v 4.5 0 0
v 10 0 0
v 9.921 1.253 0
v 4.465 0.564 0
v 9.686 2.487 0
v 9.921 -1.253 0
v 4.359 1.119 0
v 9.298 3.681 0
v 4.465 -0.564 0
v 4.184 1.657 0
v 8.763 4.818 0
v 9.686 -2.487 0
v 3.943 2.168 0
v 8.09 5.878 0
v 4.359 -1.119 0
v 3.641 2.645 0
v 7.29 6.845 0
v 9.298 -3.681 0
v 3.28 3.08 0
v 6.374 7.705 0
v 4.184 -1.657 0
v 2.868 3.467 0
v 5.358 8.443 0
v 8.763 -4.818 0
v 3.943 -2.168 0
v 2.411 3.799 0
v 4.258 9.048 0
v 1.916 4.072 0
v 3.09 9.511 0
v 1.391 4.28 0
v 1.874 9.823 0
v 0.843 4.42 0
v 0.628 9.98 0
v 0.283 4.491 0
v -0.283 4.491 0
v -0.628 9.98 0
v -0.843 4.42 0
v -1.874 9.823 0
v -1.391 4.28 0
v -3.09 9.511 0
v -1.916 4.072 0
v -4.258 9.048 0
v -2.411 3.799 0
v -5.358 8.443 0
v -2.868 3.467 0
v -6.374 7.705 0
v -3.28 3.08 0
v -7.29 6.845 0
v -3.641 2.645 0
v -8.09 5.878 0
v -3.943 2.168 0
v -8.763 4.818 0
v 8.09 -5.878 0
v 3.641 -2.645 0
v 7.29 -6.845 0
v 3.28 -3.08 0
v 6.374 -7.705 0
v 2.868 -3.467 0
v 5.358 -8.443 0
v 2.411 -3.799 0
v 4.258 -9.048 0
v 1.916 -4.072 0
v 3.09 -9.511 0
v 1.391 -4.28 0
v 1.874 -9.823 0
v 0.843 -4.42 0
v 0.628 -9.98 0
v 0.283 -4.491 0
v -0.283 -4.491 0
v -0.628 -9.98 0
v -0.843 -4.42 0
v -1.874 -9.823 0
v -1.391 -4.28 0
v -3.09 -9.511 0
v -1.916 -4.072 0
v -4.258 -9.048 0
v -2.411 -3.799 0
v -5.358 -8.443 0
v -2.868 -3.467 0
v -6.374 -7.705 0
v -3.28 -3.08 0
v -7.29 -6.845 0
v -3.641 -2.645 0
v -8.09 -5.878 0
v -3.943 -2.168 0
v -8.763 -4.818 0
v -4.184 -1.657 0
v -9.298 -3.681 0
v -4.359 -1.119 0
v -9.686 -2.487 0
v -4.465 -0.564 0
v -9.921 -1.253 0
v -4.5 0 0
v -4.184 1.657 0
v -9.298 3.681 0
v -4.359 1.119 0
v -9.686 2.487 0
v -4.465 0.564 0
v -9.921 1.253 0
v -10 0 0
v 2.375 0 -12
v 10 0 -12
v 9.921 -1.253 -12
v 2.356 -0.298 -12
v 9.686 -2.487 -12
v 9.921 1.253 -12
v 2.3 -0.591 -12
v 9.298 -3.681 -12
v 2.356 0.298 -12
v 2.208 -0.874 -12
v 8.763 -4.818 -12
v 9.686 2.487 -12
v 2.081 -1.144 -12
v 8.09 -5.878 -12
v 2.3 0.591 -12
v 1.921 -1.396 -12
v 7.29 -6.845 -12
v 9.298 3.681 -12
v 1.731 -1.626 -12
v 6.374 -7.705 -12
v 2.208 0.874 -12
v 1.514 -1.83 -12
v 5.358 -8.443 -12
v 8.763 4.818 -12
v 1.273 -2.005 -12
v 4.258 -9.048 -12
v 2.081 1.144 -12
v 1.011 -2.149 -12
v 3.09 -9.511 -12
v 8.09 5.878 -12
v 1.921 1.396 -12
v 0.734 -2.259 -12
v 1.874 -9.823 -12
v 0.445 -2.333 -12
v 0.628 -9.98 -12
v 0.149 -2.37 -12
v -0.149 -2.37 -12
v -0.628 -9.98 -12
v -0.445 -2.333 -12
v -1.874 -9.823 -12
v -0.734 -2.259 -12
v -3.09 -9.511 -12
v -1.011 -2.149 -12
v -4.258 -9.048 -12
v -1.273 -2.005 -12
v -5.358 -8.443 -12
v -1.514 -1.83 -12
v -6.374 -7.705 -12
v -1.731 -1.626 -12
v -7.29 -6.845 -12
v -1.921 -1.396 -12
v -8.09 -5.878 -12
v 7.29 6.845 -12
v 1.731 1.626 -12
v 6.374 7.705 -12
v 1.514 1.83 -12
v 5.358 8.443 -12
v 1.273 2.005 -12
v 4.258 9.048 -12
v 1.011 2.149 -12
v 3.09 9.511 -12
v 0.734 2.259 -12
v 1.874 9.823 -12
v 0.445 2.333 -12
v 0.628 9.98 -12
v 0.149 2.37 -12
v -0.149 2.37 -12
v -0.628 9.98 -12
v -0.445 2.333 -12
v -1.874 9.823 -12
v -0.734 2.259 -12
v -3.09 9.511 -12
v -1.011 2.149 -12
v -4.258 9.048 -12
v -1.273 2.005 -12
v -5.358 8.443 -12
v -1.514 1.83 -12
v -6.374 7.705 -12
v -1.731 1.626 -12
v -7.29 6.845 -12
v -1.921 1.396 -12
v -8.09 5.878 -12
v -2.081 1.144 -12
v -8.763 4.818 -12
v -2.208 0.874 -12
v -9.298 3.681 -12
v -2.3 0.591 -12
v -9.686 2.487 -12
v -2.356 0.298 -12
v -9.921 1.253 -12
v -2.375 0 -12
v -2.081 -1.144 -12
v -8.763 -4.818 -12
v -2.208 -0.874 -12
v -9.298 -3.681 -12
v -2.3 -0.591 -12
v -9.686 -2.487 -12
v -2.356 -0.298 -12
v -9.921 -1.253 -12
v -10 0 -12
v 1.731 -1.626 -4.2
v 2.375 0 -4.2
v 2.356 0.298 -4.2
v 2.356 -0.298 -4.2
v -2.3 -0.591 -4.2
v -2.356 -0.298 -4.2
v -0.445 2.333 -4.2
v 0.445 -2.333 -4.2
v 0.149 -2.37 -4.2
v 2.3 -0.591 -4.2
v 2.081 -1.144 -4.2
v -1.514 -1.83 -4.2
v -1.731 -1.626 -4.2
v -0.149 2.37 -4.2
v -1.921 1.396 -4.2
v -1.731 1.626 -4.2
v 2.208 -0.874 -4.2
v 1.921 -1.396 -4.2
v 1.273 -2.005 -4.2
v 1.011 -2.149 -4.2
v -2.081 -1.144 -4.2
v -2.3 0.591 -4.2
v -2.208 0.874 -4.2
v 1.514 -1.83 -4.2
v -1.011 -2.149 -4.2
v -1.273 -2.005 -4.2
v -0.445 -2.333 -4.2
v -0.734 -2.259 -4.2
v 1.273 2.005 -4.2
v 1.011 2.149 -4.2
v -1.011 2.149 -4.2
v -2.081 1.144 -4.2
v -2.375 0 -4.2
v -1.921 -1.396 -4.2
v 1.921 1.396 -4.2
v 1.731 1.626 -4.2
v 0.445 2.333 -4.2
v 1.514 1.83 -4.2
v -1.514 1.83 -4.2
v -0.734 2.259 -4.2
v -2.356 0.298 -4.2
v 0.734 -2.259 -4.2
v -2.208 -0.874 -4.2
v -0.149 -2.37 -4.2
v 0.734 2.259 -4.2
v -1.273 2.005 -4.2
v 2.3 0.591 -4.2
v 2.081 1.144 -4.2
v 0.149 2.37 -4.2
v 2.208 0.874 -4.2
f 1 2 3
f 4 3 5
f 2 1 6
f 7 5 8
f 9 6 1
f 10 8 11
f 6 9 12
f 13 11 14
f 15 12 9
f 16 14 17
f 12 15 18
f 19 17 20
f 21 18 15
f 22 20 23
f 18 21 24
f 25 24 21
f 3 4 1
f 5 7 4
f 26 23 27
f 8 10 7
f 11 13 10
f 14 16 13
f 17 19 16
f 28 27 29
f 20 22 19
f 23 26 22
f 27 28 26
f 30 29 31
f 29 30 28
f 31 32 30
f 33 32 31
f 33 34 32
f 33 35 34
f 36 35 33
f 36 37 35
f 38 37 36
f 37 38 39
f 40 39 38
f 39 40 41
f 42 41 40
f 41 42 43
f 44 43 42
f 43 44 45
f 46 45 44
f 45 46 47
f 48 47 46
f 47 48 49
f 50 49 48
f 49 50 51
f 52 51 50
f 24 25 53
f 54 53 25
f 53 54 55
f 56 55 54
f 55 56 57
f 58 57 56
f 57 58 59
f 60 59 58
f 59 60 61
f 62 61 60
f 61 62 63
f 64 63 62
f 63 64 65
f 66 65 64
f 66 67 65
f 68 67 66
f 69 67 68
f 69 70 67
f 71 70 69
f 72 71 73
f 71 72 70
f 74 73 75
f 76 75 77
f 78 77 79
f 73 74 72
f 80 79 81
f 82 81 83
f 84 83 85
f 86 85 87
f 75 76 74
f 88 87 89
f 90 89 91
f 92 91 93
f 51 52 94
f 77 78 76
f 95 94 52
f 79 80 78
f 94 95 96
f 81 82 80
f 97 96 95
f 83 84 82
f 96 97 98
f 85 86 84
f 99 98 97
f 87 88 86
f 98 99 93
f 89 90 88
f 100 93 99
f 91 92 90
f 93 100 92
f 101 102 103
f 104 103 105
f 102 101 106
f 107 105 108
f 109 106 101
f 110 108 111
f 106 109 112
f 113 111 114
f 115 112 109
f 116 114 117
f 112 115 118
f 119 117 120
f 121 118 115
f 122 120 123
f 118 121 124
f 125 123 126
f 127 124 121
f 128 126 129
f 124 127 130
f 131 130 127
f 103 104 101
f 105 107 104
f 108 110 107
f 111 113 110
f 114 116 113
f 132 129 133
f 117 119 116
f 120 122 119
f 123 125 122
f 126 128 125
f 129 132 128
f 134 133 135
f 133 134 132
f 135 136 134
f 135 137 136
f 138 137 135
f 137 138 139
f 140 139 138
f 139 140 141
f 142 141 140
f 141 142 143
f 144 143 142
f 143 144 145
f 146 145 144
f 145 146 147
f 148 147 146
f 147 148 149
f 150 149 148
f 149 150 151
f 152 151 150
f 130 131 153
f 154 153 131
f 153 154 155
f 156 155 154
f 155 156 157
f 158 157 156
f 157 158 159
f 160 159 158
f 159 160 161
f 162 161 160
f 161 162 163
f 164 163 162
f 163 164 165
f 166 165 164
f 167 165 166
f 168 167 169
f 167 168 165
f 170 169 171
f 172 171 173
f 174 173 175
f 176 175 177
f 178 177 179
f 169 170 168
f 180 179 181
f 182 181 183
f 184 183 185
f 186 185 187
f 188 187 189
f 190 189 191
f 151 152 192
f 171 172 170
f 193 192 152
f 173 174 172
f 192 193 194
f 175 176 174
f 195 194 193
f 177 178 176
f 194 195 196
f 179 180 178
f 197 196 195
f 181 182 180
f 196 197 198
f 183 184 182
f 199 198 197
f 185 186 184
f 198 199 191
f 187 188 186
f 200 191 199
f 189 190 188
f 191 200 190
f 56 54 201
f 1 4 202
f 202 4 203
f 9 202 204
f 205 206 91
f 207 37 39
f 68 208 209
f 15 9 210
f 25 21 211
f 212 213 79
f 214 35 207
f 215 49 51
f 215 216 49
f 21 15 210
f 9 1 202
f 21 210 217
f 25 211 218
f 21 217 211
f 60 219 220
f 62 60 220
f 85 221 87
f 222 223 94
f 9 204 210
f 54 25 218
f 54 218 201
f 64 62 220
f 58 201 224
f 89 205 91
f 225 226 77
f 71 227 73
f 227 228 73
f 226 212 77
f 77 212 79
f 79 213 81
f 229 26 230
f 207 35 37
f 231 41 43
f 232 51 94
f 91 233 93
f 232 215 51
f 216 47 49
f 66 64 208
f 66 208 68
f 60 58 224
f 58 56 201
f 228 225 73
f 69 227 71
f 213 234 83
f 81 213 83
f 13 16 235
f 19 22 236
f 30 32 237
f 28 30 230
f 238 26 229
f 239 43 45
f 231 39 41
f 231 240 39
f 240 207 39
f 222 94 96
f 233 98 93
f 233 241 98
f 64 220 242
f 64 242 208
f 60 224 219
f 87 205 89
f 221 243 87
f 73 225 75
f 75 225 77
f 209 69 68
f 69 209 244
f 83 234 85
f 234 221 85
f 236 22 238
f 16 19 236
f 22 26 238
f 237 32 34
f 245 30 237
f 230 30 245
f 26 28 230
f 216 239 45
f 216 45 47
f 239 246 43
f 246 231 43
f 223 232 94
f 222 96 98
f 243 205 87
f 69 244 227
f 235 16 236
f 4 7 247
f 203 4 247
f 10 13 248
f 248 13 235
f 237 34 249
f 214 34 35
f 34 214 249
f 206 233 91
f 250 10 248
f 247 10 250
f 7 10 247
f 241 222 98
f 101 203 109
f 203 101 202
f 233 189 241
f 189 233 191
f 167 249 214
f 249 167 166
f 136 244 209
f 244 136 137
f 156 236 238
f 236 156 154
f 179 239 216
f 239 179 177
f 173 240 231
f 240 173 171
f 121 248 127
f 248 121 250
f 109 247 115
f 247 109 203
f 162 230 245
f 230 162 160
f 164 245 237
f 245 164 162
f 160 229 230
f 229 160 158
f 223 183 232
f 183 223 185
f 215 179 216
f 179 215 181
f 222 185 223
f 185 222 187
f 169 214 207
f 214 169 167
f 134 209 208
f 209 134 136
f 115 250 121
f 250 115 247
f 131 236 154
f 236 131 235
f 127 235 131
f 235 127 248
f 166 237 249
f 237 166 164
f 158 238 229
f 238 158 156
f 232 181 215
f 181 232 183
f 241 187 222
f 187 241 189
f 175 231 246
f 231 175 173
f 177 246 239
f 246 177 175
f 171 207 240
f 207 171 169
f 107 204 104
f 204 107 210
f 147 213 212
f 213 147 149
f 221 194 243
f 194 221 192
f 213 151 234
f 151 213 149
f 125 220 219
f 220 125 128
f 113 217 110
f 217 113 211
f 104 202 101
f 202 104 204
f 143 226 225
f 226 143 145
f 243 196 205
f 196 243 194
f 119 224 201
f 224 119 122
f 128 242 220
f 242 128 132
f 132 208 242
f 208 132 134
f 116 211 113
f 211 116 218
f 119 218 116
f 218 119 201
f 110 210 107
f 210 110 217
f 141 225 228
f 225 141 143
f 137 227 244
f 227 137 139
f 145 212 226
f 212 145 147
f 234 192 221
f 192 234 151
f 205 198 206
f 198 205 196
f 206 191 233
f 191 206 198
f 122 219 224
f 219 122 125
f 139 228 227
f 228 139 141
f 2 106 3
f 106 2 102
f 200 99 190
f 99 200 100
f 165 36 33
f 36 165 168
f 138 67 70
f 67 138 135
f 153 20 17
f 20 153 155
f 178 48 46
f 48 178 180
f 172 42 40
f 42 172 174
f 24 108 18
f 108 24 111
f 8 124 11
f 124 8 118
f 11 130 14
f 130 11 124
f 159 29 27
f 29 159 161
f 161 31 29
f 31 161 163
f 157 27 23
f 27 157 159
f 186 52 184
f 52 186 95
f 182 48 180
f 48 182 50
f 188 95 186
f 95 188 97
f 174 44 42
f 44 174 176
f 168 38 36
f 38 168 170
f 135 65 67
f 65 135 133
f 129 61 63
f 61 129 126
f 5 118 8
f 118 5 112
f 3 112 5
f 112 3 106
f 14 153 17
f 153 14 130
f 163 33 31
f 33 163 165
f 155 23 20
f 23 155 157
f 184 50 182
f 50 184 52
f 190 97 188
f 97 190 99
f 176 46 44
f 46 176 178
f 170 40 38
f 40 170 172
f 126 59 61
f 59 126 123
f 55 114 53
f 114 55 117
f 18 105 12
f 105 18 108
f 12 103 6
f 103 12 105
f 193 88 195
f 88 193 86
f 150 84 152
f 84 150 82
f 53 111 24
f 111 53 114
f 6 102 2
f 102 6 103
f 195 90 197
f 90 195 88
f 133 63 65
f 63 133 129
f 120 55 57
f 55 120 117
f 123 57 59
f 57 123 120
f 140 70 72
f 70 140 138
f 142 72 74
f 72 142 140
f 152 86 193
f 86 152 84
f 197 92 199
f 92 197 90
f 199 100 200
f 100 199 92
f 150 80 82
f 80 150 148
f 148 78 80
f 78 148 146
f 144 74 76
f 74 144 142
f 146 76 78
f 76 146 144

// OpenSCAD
$fn = 50;


difference() {
	union() {
		translate(v = [0, 0, -12.0000000000]) {
			cylinder(h = 12, r = 10.0000000000);
		}
		cylinder(h = 0, r = 20.0000000000);
	}
	union() {
		translate(v = [0, 0, 0]) {
			rotate(a = [0, 0, 0]) {
				difference() {
					union() {
						#translate(v = [0, 0, -12.0000000000]) {
							cylinder(h = 12, r = 2.2500000000);
						}
						#translate(v = [0, 0, -4.2000000000]) {
							cylinder(h = 4.2000000000, r1 = 2.3750000000, r2 = 4.5000000000);
						}
						#translate(v = [0, 0, -12.0000000000]) {
							cylinder(h = 12, r = 2.3750000000);
						}
						#translate(v = [0, 0, -12.0000000000]) {
							cylinder(h = 12, r = 2.2500000000);
						}
					}
					union();
				}
			}
		}
	}
}
